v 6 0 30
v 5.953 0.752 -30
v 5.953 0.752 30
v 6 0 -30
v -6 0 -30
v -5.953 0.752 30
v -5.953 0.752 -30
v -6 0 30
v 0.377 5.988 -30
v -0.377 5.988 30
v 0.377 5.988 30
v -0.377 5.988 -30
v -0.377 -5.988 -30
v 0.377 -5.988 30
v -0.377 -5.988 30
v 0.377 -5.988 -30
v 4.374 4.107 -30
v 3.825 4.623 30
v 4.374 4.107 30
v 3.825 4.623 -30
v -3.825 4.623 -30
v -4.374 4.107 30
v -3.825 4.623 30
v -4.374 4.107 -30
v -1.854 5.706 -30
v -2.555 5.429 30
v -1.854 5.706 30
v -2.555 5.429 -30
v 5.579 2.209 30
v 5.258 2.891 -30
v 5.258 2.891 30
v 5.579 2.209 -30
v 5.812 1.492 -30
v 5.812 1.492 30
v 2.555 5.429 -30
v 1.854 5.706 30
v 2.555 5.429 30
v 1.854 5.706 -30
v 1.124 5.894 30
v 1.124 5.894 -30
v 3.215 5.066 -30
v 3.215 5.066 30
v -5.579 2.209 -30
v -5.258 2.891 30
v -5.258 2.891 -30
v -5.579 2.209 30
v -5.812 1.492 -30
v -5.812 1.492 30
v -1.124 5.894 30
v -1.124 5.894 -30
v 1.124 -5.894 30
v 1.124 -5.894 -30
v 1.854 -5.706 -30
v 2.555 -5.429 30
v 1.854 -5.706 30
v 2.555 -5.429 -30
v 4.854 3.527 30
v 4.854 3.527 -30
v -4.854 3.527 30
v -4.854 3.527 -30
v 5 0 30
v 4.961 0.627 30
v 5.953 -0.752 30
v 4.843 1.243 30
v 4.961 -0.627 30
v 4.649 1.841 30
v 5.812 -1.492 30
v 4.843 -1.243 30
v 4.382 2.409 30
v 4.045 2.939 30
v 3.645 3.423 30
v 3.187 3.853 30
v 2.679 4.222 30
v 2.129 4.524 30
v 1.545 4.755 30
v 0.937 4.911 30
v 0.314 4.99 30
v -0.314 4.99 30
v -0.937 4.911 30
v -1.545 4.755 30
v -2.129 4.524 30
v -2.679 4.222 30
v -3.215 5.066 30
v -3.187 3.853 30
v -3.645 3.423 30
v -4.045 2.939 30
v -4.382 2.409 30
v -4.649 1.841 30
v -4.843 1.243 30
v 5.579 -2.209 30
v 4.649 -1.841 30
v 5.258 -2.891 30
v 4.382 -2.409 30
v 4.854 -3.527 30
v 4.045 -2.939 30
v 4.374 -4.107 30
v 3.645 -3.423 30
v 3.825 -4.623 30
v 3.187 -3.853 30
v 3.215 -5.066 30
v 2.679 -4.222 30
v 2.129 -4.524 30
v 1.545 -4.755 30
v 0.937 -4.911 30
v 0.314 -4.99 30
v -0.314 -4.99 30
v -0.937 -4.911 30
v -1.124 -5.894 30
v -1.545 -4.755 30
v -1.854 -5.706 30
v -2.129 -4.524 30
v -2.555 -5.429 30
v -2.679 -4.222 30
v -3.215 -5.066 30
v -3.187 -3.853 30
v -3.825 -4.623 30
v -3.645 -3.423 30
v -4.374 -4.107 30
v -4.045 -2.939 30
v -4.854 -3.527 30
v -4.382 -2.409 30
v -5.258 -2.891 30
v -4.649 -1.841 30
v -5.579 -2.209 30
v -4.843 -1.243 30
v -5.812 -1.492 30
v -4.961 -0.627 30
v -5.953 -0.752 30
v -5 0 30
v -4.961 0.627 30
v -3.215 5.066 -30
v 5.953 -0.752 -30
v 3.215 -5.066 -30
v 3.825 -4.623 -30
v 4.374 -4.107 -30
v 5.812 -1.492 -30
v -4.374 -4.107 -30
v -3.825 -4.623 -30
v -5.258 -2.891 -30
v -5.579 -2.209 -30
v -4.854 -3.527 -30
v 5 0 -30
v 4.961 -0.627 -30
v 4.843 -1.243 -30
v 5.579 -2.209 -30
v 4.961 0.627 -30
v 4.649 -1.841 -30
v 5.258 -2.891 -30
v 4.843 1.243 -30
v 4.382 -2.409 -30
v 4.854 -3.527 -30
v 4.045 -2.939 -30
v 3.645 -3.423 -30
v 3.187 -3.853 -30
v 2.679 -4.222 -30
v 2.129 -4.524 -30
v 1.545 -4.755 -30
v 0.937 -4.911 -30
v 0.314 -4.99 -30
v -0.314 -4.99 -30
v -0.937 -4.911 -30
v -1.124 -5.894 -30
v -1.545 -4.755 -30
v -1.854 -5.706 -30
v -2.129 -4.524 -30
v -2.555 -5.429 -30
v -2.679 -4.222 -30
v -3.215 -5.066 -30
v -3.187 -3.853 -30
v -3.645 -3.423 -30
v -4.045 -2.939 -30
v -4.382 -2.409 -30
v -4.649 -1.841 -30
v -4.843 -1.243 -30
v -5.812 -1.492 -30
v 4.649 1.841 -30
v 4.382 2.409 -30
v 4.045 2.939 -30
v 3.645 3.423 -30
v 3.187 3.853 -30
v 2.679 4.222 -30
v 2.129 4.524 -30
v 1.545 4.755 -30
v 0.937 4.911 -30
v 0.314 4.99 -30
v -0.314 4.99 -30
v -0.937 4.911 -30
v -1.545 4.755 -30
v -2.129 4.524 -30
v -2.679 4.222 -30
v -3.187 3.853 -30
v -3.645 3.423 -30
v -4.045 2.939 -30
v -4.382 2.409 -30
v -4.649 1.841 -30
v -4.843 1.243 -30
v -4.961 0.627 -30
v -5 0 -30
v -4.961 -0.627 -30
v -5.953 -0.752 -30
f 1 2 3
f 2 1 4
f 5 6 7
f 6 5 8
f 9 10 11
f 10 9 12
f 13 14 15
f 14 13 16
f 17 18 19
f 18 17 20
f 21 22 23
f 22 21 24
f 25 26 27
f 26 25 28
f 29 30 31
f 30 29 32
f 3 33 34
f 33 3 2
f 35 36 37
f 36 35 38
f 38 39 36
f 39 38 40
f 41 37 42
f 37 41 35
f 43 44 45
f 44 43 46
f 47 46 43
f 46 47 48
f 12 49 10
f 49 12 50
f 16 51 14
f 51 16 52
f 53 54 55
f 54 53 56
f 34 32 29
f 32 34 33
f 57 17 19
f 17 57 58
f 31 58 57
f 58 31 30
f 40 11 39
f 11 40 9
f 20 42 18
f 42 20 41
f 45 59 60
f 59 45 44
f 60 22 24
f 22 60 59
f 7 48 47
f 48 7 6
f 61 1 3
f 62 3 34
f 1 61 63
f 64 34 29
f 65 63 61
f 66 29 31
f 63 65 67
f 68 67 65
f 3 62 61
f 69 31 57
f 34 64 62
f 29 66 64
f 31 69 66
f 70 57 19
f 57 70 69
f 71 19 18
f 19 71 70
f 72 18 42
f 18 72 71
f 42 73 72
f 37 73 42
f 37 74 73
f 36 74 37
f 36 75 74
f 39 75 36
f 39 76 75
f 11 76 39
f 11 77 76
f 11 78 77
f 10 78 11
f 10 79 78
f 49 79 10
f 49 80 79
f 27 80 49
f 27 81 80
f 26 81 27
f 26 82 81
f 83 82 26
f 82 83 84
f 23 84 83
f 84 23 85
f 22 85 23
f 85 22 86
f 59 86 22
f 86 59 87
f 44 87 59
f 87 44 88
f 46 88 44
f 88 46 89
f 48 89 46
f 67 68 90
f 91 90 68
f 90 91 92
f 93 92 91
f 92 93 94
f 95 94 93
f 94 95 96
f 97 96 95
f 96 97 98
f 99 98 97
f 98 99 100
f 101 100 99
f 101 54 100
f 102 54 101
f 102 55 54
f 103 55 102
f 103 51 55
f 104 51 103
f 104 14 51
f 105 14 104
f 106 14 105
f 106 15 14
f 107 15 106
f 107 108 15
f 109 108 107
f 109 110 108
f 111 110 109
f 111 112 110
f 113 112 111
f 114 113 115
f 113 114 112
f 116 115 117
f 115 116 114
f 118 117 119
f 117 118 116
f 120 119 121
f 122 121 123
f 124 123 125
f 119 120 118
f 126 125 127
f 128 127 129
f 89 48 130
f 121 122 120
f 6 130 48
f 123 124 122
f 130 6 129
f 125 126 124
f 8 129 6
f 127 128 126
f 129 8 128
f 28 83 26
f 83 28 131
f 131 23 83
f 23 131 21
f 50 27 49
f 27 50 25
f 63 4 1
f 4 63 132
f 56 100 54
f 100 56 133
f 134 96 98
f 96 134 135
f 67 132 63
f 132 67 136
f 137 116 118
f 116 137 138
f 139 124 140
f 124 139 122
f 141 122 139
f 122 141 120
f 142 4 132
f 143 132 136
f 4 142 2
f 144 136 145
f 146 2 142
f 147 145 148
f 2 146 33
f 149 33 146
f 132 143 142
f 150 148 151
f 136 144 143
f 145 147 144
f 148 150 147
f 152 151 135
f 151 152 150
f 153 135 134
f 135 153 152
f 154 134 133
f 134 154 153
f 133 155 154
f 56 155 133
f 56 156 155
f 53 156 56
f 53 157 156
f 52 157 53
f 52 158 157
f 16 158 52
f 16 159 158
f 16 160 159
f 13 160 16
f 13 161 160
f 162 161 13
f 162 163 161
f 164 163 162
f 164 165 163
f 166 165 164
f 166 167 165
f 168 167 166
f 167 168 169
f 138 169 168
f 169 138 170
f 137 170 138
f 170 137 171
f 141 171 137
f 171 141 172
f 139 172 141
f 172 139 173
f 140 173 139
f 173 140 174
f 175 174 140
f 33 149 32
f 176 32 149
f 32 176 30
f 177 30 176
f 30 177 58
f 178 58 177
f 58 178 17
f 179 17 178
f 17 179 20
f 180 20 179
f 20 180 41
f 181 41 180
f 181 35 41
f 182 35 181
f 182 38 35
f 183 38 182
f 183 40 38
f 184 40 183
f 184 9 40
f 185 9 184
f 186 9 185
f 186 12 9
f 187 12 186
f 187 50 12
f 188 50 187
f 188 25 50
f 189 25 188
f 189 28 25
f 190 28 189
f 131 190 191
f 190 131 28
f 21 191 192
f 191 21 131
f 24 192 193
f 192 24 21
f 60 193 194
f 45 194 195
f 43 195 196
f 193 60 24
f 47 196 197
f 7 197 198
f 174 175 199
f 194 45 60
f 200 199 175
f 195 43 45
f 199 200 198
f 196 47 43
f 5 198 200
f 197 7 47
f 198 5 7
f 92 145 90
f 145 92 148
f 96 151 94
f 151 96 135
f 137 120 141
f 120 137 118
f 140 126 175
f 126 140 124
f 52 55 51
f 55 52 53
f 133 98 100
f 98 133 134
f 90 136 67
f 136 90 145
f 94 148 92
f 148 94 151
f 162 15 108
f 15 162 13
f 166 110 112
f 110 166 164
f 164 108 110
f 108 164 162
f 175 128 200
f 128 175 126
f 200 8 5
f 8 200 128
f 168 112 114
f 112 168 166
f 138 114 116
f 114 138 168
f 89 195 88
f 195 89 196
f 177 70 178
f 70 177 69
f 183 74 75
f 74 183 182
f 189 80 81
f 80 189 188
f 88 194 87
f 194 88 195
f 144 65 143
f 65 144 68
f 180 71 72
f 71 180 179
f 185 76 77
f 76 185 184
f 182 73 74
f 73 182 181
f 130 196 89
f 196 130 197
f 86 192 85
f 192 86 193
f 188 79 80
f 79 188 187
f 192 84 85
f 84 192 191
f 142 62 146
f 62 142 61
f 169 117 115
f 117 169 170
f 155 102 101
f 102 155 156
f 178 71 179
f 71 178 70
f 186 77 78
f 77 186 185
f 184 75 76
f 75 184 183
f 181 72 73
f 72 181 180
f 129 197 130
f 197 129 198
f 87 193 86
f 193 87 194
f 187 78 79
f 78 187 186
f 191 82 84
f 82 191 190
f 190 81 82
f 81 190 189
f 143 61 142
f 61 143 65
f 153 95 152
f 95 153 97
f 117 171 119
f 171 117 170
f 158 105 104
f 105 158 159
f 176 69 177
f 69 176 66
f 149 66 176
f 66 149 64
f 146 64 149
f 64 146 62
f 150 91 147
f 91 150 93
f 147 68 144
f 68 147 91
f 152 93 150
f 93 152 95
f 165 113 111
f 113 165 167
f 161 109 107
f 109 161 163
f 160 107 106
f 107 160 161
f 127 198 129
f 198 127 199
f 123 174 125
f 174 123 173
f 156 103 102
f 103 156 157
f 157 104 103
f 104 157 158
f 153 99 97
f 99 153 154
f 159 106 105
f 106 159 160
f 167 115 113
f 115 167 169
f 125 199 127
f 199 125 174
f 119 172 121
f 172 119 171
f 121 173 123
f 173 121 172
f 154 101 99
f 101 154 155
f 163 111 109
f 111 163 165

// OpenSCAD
$fn = 50;


difference() {
	union() {
		translate(v = [0, 0, -30.0000000000]) {
			cylinder(h = 60, r = 6.0000000000);
		}
	}
	union() {
		translate(v = [0, 0, -100.0000000000]) {
			cylinder(h = 200, r = 5);
		}
	}
}
